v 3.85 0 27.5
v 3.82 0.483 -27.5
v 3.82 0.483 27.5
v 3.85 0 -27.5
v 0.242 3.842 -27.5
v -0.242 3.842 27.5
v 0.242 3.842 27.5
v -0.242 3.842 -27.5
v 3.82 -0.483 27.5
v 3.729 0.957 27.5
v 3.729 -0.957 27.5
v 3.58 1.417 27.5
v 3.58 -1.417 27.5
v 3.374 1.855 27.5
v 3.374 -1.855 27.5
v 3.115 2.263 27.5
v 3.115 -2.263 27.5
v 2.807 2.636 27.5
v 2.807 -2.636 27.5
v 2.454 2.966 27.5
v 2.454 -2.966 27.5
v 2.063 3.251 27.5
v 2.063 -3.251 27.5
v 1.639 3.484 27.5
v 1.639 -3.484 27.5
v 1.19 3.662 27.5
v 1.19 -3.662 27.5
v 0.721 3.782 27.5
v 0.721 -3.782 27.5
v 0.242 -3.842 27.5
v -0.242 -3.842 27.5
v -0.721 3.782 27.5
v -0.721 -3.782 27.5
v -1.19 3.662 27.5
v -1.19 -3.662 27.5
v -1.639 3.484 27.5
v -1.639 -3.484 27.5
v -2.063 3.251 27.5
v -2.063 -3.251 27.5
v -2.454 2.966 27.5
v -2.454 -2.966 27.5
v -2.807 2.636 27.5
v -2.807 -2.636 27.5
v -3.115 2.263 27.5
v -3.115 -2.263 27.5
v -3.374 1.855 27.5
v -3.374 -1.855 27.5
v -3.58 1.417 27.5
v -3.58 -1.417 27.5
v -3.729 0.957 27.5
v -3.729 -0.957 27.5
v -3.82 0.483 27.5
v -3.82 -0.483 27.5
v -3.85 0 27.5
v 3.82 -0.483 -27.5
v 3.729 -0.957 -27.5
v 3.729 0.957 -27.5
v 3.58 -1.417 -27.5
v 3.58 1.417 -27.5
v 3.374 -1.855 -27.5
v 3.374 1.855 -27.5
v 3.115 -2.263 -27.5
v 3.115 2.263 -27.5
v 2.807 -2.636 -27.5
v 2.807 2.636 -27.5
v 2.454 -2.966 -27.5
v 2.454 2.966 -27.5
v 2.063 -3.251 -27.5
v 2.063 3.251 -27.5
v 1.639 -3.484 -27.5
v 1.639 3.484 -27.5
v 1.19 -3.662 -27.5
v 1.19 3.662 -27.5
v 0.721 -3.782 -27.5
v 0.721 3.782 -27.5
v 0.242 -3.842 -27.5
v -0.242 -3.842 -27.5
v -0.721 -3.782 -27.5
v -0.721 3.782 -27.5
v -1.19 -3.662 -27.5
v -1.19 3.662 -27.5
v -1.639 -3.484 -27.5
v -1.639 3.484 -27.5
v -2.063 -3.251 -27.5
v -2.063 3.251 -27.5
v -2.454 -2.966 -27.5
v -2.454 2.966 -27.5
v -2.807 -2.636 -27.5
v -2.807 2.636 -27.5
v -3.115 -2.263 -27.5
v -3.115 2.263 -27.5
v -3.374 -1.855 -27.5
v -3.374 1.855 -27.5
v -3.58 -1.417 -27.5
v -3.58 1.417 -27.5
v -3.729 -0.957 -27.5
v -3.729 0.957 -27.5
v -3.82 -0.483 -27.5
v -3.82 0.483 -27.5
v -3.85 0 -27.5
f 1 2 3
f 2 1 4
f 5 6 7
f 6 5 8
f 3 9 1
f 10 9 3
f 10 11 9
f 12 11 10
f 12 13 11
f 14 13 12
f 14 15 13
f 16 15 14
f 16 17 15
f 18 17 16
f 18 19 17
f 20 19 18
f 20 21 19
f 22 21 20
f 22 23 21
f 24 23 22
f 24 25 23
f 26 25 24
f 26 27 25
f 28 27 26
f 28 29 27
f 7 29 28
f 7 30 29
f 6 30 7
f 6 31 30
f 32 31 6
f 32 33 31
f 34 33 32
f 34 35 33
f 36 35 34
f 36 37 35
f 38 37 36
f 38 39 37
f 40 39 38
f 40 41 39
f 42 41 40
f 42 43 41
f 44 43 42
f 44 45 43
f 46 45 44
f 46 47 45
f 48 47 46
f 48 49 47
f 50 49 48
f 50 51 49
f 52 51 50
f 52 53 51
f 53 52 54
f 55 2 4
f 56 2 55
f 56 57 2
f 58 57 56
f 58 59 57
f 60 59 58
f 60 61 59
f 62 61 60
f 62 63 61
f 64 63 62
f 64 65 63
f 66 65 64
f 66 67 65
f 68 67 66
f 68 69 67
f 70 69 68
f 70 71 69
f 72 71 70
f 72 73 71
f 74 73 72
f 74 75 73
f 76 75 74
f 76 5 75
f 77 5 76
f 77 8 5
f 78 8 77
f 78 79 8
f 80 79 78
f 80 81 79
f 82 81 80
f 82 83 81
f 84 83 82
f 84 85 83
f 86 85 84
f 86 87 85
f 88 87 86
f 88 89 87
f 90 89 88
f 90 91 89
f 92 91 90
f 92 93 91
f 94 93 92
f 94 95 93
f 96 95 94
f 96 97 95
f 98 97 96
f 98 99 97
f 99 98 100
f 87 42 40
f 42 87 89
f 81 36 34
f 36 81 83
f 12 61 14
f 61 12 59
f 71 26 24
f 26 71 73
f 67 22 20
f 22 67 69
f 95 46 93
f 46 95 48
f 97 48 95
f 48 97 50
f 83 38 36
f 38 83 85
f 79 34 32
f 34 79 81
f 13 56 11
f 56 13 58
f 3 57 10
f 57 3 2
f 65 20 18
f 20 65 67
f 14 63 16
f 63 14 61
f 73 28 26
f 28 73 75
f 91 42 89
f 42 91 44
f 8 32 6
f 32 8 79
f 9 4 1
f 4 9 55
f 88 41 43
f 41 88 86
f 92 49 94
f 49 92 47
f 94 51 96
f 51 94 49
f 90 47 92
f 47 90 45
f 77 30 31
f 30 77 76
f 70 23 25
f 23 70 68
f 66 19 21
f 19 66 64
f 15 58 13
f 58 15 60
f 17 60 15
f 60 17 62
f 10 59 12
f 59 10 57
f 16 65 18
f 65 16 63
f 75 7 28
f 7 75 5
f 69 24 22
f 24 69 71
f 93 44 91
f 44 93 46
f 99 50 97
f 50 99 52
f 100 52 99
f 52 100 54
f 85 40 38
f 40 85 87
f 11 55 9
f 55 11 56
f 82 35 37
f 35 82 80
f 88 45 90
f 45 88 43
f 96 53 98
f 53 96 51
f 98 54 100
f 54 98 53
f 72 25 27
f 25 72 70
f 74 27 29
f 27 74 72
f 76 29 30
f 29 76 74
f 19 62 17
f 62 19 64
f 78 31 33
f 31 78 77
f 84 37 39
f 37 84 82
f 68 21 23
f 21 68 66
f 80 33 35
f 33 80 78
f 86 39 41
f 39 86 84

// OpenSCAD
$fn = 50;


difference() {
	union() {
		translate(v = [0, 0, -27.5000000000]) {
			cylinder(h = 55, r = 3.8500000000);
		}
	}
	union() {
		translate(v = [0, 0, -100.0000000000]) {
			cylinder(h = 200, r = 0);
		}
	}
}
